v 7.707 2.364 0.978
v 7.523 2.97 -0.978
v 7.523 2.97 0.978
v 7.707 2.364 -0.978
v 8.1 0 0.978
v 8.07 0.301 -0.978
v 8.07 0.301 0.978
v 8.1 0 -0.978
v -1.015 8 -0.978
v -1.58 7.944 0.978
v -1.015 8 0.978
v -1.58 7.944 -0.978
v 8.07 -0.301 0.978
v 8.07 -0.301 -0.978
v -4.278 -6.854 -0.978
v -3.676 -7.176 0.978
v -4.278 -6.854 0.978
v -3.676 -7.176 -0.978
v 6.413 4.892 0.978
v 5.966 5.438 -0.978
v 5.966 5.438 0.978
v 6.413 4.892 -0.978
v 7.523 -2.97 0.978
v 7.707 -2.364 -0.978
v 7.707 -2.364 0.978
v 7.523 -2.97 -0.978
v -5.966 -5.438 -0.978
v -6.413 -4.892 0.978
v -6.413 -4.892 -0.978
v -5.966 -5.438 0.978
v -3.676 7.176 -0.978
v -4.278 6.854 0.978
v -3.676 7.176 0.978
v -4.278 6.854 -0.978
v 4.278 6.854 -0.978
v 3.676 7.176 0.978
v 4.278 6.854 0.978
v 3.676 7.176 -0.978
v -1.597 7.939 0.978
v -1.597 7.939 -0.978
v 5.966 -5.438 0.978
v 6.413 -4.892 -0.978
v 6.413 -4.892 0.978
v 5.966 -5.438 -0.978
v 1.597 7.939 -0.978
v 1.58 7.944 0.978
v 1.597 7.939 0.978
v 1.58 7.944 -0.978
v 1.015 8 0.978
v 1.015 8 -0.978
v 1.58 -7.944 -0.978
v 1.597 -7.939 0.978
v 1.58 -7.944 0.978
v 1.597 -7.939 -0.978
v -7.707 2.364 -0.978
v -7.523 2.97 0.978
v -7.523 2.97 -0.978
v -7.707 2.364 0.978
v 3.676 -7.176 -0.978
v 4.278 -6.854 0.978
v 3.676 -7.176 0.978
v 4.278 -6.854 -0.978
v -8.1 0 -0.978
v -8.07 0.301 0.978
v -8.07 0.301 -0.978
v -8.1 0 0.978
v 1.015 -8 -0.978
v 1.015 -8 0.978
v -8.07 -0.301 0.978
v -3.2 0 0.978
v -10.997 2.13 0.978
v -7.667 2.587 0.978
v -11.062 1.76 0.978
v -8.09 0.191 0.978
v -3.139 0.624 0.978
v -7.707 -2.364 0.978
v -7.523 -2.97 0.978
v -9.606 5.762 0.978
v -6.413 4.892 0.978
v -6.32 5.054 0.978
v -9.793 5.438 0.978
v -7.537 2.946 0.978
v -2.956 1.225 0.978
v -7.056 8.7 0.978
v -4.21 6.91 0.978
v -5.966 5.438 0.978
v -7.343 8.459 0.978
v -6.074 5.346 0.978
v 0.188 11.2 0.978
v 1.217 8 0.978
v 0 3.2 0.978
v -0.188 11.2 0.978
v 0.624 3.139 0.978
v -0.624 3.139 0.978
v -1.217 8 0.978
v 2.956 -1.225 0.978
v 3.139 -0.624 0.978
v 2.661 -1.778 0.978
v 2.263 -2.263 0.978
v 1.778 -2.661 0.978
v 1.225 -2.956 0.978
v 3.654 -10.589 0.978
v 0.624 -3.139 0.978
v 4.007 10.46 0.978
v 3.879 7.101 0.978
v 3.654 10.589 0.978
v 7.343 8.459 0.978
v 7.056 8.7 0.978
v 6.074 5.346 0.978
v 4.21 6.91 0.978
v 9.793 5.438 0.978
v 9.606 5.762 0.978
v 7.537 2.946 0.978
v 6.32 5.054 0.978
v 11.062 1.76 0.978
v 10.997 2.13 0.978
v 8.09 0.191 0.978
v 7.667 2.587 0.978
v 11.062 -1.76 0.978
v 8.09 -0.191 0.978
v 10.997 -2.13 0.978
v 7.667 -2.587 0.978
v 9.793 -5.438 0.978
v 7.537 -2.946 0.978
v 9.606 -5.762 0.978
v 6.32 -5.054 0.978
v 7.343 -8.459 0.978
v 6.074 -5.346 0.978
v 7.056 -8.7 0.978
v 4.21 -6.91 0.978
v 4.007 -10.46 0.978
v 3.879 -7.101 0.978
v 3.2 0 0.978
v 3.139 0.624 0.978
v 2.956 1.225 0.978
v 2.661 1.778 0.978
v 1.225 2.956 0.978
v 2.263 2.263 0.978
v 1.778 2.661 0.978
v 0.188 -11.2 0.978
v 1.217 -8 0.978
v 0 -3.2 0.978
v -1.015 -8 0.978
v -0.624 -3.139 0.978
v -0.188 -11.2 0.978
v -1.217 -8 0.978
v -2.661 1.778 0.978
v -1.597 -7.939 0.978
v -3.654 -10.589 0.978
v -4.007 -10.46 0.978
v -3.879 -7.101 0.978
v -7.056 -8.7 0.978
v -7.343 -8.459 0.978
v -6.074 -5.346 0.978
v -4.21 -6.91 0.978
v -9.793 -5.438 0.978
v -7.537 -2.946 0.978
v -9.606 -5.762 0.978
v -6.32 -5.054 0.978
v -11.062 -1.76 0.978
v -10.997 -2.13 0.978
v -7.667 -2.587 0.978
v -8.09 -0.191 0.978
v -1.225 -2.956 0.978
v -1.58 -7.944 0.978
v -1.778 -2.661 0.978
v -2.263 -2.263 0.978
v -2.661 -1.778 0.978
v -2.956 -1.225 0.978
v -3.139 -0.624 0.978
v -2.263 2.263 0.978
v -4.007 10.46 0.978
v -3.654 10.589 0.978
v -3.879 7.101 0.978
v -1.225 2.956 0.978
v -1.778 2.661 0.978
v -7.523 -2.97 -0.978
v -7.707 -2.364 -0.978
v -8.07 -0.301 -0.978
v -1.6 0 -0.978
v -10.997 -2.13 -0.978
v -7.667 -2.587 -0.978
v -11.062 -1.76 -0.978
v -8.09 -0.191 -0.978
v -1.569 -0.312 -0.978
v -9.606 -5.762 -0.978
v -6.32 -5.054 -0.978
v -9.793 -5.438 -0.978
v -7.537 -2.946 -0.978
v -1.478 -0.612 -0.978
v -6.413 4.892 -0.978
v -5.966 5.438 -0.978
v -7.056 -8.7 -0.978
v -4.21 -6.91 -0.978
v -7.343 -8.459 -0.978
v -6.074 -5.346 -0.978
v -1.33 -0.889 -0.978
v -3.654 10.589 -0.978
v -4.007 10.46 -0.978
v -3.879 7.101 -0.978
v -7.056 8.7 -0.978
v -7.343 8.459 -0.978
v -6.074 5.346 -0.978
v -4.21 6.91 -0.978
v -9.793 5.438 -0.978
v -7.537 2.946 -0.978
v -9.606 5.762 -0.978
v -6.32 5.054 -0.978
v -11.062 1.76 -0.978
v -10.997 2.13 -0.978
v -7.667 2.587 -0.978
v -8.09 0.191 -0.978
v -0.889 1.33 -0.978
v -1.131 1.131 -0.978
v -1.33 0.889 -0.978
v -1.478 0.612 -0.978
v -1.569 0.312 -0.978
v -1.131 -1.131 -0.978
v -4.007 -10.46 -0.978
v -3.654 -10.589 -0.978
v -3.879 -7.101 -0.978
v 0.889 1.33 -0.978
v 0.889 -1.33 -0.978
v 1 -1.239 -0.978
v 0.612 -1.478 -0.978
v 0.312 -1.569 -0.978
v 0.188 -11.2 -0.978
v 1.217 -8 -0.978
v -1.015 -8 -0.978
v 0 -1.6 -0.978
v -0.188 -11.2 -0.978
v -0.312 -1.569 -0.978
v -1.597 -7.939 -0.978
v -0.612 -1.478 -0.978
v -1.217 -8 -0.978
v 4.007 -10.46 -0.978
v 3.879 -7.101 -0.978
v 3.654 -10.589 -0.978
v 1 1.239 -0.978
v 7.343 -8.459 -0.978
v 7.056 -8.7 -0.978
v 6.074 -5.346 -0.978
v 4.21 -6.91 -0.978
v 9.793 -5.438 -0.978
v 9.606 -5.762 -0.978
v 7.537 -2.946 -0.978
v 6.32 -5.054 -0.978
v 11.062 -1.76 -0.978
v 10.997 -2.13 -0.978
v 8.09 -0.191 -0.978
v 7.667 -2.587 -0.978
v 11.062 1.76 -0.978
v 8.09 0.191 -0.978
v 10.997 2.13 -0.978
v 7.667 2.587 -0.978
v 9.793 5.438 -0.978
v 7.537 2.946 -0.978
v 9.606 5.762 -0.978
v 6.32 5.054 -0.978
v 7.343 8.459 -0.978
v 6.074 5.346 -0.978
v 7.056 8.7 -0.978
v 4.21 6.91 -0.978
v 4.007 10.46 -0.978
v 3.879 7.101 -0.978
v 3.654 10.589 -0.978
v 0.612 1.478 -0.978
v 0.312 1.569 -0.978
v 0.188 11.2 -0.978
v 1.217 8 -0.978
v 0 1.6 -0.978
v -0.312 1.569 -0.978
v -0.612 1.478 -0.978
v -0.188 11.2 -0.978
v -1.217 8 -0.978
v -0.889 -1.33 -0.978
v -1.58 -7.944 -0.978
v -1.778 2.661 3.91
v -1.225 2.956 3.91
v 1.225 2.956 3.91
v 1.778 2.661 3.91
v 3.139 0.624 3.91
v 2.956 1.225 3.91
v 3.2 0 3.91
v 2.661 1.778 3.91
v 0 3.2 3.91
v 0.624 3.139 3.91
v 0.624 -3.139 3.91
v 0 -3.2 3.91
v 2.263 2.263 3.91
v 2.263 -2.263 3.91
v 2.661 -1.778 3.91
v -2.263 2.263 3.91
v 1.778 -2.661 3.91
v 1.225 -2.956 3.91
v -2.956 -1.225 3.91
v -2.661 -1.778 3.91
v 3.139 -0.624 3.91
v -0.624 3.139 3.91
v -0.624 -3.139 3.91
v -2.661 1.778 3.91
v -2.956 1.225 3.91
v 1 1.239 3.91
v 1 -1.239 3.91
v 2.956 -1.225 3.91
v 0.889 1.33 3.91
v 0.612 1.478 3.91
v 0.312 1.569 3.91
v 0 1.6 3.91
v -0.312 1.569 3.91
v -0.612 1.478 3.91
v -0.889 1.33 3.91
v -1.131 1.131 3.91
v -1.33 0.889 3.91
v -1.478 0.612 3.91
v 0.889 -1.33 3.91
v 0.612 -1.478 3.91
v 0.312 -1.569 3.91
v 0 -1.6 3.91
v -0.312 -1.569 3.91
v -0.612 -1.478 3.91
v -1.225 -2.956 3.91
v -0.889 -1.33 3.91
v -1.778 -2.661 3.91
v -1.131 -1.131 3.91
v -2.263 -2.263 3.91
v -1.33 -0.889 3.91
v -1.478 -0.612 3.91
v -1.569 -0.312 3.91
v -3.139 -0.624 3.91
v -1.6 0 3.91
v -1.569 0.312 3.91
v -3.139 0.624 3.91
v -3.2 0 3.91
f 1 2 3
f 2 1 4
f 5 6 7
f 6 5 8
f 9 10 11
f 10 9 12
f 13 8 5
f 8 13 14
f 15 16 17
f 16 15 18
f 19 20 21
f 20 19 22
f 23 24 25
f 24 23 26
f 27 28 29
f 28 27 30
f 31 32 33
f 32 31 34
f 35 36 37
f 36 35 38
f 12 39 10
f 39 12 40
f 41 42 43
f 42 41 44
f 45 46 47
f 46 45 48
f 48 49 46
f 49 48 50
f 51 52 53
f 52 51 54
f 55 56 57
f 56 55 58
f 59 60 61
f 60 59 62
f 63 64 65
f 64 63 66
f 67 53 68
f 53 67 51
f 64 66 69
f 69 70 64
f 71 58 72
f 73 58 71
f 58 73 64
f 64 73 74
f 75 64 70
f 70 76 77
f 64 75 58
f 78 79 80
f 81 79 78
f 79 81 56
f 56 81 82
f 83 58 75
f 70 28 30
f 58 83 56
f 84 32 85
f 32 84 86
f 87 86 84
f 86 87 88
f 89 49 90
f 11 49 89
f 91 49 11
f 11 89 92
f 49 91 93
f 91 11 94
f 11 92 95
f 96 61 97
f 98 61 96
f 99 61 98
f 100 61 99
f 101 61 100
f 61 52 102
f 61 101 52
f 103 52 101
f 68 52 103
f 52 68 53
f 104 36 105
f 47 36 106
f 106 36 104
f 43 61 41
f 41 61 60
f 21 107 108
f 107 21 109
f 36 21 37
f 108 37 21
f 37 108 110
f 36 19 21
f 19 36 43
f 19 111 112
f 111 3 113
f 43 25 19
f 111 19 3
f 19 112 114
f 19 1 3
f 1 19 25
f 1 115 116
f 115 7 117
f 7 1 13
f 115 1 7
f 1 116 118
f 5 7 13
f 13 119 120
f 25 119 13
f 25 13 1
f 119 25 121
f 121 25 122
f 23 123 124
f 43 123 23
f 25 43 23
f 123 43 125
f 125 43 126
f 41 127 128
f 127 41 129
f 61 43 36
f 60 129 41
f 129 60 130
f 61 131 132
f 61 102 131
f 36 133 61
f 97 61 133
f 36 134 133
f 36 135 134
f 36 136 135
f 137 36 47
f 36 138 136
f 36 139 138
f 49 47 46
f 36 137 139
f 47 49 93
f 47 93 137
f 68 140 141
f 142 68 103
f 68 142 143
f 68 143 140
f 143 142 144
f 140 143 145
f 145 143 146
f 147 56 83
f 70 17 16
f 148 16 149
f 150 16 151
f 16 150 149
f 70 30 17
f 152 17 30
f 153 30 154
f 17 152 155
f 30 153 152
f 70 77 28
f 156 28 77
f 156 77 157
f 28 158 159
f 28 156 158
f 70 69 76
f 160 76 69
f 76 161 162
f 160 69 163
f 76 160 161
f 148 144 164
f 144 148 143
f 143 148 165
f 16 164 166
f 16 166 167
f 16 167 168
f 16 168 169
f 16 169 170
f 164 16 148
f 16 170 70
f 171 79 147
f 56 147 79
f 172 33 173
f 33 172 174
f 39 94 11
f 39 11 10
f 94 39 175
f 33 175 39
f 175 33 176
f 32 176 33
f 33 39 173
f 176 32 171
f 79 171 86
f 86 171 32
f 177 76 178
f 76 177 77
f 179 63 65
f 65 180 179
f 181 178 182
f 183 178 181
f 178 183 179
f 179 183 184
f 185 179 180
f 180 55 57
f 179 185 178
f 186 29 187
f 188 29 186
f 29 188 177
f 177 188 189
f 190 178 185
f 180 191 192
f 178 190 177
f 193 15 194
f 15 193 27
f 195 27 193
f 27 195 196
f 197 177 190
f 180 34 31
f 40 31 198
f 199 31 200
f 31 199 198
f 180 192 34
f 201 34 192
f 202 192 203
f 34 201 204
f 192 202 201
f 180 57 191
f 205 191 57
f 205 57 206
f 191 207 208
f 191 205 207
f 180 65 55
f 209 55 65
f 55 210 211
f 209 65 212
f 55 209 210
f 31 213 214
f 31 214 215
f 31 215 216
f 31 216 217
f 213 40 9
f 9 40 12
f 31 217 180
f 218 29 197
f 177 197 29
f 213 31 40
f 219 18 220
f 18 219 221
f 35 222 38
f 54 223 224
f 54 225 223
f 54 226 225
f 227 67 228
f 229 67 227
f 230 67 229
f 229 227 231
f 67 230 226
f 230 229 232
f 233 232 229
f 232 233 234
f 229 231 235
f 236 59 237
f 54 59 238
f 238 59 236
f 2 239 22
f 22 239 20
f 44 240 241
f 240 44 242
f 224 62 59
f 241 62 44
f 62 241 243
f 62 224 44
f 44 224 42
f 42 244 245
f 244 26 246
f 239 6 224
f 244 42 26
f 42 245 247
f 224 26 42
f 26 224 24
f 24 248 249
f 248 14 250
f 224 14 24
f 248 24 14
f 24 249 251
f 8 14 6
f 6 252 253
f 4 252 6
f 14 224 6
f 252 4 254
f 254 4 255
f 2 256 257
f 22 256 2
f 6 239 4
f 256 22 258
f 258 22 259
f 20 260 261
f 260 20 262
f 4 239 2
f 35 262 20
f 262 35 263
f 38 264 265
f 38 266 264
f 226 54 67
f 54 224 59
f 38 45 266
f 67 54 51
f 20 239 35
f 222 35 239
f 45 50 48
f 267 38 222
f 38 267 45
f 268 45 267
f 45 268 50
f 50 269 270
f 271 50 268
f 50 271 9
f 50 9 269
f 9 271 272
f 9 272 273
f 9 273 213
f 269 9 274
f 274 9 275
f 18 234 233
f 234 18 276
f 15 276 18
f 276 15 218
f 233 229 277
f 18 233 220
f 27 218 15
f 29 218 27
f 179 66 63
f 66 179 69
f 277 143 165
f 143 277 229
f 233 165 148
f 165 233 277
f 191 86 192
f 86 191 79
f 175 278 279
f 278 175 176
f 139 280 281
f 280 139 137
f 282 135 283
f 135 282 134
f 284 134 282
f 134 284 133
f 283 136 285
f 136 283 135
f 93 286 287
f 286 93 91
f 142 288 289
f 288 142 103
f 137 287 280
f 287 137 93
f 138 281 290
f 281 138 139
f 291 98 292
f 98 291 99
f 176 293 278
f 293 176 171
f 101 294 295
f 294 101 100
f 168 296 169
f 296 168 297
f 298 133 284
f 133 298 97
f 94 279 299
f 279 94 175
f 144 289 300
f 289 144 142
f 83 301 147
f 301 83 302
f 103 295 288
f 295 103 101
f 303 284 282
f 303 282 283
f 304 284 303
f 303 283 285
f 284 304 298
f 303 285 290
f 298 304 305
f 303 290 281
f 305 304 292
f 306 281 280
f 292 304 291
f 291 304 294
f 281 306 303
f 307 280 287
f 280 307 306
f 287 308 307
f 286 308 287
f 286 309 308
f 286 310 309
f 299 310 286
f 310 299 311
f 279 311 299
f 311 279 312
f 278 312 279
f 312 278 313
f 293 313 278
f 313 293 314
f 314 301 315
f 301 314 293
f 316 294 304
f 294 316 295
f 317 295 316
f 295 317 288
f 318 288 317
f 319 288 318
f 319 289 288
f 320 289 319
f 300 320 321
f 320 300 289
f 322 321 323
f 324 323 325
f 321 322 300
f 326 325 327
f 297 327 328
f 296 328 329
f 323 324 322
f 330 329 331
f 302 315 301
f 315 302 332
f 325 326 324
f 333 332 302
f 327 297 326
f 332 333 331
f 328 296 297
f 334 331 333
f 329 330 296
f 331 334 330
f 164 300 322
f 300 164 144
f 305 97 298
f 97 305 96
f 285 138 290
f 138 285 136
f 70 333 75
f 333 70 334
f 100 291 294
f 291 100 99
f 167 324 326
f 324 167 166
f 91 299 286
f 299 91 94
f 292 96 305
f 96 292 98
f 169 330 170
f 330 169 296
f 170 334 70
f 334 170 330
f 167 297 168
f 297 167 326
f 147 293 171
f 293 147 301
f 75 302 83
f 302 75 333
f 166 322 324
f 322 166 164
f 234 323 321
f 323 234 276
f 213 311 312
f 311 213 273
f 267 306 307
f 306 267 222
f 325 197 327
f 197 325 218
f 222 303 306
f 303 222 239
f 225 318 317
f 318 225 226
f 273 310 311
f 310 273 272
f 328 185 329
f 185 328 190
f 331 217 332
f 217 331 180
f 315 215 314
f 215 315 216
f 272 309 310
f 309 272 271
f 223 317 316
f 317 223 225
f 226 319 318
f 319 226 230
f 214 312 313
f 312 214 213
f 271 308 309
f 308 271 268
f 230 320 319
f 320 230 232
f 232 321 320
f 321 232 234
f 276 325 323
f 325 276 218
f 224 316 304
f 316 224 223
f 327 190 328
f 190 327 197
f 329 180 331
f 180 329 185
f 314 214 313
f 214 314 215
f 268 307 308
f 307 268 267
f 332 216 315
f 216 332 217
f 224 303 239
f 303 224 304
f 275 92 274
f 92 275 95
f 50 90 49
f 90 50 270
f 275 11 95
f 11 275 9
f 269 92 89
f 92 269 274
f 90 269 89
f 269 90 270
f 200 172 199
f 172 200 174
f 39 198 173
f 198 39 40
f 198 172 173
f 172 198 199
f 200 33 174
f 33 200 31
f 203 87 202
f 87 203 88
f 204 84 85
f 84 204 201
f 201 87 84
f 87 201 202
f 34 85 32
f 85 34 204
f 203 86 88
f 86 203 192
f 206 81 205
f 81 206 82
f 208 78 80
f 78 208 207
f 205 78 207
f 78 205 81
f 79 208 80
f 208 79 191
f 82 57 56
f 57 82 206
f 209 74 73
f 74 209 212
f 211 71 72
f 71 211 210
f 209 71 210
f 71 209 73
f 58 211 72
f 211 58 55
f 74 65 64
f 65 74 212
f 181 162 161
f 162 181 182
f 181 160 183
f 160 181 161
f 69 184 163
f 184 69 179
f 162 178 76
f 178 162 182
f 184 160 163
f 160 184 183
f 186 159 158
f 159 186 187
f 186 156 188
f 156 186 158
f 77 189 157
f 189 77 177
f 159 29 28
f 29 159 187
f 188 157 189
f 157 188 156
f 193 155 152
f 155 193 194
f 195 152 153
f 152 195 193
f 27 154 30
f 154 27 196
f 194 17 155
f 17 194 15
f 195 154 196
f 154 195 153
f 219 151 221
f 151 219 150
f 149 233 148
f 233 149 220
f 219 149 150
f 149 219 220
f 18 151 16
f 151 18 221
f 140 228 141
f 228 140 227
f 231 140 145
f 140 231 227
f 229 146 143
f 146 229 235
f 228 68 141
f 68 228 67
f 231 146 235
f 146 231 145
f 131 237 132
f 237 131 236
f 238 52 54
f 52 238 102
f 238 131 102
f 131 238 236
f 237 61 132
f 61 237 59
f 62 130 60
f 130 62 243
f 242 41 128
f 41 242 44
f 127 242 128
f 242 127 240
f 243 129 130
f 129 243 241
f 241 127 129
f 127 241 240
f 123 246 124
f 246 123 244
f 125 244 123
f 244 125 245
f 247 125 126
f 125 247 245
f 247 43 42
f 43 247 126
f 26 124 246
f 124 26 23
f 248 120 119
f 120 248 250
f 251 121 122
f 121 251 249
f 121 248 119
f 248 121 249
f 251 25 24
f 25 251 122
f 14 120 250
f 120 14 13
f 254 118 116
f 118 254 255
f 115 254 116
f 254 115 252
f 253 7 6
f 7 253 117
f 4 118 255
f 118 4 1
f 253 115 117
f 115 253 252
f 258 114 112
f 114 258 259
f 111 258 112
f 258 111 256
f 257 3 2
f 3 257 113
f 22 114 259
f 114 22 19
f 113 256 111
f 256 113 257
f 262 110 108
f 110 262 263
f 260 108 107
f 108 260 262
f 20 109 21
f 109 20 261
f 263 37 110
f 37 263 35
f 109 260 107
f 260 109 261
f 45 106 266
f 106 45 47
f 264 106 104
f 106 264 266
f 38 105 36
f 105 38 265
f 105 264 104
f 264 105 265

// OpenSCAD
/*

  ttt_gear.scad

  (c) olikraus@gmail.com

  This work is licensed under the Creative Commons Attribution-NonCommercial-ShareAlike 4.0 International License. 
  To view a copy of this license, visit http://creativecommons.org/licenses/by-nc-sa/4.0/.

  render the main gear for train tube track

*/
include <train_tube_track.scad>;

/*
    1st Parameter: Hole Diameter
    2nd Parameter: Depth of the flat aches area (if any)
*/
ttt_gear(3+0.2, 0.5+0.1);
